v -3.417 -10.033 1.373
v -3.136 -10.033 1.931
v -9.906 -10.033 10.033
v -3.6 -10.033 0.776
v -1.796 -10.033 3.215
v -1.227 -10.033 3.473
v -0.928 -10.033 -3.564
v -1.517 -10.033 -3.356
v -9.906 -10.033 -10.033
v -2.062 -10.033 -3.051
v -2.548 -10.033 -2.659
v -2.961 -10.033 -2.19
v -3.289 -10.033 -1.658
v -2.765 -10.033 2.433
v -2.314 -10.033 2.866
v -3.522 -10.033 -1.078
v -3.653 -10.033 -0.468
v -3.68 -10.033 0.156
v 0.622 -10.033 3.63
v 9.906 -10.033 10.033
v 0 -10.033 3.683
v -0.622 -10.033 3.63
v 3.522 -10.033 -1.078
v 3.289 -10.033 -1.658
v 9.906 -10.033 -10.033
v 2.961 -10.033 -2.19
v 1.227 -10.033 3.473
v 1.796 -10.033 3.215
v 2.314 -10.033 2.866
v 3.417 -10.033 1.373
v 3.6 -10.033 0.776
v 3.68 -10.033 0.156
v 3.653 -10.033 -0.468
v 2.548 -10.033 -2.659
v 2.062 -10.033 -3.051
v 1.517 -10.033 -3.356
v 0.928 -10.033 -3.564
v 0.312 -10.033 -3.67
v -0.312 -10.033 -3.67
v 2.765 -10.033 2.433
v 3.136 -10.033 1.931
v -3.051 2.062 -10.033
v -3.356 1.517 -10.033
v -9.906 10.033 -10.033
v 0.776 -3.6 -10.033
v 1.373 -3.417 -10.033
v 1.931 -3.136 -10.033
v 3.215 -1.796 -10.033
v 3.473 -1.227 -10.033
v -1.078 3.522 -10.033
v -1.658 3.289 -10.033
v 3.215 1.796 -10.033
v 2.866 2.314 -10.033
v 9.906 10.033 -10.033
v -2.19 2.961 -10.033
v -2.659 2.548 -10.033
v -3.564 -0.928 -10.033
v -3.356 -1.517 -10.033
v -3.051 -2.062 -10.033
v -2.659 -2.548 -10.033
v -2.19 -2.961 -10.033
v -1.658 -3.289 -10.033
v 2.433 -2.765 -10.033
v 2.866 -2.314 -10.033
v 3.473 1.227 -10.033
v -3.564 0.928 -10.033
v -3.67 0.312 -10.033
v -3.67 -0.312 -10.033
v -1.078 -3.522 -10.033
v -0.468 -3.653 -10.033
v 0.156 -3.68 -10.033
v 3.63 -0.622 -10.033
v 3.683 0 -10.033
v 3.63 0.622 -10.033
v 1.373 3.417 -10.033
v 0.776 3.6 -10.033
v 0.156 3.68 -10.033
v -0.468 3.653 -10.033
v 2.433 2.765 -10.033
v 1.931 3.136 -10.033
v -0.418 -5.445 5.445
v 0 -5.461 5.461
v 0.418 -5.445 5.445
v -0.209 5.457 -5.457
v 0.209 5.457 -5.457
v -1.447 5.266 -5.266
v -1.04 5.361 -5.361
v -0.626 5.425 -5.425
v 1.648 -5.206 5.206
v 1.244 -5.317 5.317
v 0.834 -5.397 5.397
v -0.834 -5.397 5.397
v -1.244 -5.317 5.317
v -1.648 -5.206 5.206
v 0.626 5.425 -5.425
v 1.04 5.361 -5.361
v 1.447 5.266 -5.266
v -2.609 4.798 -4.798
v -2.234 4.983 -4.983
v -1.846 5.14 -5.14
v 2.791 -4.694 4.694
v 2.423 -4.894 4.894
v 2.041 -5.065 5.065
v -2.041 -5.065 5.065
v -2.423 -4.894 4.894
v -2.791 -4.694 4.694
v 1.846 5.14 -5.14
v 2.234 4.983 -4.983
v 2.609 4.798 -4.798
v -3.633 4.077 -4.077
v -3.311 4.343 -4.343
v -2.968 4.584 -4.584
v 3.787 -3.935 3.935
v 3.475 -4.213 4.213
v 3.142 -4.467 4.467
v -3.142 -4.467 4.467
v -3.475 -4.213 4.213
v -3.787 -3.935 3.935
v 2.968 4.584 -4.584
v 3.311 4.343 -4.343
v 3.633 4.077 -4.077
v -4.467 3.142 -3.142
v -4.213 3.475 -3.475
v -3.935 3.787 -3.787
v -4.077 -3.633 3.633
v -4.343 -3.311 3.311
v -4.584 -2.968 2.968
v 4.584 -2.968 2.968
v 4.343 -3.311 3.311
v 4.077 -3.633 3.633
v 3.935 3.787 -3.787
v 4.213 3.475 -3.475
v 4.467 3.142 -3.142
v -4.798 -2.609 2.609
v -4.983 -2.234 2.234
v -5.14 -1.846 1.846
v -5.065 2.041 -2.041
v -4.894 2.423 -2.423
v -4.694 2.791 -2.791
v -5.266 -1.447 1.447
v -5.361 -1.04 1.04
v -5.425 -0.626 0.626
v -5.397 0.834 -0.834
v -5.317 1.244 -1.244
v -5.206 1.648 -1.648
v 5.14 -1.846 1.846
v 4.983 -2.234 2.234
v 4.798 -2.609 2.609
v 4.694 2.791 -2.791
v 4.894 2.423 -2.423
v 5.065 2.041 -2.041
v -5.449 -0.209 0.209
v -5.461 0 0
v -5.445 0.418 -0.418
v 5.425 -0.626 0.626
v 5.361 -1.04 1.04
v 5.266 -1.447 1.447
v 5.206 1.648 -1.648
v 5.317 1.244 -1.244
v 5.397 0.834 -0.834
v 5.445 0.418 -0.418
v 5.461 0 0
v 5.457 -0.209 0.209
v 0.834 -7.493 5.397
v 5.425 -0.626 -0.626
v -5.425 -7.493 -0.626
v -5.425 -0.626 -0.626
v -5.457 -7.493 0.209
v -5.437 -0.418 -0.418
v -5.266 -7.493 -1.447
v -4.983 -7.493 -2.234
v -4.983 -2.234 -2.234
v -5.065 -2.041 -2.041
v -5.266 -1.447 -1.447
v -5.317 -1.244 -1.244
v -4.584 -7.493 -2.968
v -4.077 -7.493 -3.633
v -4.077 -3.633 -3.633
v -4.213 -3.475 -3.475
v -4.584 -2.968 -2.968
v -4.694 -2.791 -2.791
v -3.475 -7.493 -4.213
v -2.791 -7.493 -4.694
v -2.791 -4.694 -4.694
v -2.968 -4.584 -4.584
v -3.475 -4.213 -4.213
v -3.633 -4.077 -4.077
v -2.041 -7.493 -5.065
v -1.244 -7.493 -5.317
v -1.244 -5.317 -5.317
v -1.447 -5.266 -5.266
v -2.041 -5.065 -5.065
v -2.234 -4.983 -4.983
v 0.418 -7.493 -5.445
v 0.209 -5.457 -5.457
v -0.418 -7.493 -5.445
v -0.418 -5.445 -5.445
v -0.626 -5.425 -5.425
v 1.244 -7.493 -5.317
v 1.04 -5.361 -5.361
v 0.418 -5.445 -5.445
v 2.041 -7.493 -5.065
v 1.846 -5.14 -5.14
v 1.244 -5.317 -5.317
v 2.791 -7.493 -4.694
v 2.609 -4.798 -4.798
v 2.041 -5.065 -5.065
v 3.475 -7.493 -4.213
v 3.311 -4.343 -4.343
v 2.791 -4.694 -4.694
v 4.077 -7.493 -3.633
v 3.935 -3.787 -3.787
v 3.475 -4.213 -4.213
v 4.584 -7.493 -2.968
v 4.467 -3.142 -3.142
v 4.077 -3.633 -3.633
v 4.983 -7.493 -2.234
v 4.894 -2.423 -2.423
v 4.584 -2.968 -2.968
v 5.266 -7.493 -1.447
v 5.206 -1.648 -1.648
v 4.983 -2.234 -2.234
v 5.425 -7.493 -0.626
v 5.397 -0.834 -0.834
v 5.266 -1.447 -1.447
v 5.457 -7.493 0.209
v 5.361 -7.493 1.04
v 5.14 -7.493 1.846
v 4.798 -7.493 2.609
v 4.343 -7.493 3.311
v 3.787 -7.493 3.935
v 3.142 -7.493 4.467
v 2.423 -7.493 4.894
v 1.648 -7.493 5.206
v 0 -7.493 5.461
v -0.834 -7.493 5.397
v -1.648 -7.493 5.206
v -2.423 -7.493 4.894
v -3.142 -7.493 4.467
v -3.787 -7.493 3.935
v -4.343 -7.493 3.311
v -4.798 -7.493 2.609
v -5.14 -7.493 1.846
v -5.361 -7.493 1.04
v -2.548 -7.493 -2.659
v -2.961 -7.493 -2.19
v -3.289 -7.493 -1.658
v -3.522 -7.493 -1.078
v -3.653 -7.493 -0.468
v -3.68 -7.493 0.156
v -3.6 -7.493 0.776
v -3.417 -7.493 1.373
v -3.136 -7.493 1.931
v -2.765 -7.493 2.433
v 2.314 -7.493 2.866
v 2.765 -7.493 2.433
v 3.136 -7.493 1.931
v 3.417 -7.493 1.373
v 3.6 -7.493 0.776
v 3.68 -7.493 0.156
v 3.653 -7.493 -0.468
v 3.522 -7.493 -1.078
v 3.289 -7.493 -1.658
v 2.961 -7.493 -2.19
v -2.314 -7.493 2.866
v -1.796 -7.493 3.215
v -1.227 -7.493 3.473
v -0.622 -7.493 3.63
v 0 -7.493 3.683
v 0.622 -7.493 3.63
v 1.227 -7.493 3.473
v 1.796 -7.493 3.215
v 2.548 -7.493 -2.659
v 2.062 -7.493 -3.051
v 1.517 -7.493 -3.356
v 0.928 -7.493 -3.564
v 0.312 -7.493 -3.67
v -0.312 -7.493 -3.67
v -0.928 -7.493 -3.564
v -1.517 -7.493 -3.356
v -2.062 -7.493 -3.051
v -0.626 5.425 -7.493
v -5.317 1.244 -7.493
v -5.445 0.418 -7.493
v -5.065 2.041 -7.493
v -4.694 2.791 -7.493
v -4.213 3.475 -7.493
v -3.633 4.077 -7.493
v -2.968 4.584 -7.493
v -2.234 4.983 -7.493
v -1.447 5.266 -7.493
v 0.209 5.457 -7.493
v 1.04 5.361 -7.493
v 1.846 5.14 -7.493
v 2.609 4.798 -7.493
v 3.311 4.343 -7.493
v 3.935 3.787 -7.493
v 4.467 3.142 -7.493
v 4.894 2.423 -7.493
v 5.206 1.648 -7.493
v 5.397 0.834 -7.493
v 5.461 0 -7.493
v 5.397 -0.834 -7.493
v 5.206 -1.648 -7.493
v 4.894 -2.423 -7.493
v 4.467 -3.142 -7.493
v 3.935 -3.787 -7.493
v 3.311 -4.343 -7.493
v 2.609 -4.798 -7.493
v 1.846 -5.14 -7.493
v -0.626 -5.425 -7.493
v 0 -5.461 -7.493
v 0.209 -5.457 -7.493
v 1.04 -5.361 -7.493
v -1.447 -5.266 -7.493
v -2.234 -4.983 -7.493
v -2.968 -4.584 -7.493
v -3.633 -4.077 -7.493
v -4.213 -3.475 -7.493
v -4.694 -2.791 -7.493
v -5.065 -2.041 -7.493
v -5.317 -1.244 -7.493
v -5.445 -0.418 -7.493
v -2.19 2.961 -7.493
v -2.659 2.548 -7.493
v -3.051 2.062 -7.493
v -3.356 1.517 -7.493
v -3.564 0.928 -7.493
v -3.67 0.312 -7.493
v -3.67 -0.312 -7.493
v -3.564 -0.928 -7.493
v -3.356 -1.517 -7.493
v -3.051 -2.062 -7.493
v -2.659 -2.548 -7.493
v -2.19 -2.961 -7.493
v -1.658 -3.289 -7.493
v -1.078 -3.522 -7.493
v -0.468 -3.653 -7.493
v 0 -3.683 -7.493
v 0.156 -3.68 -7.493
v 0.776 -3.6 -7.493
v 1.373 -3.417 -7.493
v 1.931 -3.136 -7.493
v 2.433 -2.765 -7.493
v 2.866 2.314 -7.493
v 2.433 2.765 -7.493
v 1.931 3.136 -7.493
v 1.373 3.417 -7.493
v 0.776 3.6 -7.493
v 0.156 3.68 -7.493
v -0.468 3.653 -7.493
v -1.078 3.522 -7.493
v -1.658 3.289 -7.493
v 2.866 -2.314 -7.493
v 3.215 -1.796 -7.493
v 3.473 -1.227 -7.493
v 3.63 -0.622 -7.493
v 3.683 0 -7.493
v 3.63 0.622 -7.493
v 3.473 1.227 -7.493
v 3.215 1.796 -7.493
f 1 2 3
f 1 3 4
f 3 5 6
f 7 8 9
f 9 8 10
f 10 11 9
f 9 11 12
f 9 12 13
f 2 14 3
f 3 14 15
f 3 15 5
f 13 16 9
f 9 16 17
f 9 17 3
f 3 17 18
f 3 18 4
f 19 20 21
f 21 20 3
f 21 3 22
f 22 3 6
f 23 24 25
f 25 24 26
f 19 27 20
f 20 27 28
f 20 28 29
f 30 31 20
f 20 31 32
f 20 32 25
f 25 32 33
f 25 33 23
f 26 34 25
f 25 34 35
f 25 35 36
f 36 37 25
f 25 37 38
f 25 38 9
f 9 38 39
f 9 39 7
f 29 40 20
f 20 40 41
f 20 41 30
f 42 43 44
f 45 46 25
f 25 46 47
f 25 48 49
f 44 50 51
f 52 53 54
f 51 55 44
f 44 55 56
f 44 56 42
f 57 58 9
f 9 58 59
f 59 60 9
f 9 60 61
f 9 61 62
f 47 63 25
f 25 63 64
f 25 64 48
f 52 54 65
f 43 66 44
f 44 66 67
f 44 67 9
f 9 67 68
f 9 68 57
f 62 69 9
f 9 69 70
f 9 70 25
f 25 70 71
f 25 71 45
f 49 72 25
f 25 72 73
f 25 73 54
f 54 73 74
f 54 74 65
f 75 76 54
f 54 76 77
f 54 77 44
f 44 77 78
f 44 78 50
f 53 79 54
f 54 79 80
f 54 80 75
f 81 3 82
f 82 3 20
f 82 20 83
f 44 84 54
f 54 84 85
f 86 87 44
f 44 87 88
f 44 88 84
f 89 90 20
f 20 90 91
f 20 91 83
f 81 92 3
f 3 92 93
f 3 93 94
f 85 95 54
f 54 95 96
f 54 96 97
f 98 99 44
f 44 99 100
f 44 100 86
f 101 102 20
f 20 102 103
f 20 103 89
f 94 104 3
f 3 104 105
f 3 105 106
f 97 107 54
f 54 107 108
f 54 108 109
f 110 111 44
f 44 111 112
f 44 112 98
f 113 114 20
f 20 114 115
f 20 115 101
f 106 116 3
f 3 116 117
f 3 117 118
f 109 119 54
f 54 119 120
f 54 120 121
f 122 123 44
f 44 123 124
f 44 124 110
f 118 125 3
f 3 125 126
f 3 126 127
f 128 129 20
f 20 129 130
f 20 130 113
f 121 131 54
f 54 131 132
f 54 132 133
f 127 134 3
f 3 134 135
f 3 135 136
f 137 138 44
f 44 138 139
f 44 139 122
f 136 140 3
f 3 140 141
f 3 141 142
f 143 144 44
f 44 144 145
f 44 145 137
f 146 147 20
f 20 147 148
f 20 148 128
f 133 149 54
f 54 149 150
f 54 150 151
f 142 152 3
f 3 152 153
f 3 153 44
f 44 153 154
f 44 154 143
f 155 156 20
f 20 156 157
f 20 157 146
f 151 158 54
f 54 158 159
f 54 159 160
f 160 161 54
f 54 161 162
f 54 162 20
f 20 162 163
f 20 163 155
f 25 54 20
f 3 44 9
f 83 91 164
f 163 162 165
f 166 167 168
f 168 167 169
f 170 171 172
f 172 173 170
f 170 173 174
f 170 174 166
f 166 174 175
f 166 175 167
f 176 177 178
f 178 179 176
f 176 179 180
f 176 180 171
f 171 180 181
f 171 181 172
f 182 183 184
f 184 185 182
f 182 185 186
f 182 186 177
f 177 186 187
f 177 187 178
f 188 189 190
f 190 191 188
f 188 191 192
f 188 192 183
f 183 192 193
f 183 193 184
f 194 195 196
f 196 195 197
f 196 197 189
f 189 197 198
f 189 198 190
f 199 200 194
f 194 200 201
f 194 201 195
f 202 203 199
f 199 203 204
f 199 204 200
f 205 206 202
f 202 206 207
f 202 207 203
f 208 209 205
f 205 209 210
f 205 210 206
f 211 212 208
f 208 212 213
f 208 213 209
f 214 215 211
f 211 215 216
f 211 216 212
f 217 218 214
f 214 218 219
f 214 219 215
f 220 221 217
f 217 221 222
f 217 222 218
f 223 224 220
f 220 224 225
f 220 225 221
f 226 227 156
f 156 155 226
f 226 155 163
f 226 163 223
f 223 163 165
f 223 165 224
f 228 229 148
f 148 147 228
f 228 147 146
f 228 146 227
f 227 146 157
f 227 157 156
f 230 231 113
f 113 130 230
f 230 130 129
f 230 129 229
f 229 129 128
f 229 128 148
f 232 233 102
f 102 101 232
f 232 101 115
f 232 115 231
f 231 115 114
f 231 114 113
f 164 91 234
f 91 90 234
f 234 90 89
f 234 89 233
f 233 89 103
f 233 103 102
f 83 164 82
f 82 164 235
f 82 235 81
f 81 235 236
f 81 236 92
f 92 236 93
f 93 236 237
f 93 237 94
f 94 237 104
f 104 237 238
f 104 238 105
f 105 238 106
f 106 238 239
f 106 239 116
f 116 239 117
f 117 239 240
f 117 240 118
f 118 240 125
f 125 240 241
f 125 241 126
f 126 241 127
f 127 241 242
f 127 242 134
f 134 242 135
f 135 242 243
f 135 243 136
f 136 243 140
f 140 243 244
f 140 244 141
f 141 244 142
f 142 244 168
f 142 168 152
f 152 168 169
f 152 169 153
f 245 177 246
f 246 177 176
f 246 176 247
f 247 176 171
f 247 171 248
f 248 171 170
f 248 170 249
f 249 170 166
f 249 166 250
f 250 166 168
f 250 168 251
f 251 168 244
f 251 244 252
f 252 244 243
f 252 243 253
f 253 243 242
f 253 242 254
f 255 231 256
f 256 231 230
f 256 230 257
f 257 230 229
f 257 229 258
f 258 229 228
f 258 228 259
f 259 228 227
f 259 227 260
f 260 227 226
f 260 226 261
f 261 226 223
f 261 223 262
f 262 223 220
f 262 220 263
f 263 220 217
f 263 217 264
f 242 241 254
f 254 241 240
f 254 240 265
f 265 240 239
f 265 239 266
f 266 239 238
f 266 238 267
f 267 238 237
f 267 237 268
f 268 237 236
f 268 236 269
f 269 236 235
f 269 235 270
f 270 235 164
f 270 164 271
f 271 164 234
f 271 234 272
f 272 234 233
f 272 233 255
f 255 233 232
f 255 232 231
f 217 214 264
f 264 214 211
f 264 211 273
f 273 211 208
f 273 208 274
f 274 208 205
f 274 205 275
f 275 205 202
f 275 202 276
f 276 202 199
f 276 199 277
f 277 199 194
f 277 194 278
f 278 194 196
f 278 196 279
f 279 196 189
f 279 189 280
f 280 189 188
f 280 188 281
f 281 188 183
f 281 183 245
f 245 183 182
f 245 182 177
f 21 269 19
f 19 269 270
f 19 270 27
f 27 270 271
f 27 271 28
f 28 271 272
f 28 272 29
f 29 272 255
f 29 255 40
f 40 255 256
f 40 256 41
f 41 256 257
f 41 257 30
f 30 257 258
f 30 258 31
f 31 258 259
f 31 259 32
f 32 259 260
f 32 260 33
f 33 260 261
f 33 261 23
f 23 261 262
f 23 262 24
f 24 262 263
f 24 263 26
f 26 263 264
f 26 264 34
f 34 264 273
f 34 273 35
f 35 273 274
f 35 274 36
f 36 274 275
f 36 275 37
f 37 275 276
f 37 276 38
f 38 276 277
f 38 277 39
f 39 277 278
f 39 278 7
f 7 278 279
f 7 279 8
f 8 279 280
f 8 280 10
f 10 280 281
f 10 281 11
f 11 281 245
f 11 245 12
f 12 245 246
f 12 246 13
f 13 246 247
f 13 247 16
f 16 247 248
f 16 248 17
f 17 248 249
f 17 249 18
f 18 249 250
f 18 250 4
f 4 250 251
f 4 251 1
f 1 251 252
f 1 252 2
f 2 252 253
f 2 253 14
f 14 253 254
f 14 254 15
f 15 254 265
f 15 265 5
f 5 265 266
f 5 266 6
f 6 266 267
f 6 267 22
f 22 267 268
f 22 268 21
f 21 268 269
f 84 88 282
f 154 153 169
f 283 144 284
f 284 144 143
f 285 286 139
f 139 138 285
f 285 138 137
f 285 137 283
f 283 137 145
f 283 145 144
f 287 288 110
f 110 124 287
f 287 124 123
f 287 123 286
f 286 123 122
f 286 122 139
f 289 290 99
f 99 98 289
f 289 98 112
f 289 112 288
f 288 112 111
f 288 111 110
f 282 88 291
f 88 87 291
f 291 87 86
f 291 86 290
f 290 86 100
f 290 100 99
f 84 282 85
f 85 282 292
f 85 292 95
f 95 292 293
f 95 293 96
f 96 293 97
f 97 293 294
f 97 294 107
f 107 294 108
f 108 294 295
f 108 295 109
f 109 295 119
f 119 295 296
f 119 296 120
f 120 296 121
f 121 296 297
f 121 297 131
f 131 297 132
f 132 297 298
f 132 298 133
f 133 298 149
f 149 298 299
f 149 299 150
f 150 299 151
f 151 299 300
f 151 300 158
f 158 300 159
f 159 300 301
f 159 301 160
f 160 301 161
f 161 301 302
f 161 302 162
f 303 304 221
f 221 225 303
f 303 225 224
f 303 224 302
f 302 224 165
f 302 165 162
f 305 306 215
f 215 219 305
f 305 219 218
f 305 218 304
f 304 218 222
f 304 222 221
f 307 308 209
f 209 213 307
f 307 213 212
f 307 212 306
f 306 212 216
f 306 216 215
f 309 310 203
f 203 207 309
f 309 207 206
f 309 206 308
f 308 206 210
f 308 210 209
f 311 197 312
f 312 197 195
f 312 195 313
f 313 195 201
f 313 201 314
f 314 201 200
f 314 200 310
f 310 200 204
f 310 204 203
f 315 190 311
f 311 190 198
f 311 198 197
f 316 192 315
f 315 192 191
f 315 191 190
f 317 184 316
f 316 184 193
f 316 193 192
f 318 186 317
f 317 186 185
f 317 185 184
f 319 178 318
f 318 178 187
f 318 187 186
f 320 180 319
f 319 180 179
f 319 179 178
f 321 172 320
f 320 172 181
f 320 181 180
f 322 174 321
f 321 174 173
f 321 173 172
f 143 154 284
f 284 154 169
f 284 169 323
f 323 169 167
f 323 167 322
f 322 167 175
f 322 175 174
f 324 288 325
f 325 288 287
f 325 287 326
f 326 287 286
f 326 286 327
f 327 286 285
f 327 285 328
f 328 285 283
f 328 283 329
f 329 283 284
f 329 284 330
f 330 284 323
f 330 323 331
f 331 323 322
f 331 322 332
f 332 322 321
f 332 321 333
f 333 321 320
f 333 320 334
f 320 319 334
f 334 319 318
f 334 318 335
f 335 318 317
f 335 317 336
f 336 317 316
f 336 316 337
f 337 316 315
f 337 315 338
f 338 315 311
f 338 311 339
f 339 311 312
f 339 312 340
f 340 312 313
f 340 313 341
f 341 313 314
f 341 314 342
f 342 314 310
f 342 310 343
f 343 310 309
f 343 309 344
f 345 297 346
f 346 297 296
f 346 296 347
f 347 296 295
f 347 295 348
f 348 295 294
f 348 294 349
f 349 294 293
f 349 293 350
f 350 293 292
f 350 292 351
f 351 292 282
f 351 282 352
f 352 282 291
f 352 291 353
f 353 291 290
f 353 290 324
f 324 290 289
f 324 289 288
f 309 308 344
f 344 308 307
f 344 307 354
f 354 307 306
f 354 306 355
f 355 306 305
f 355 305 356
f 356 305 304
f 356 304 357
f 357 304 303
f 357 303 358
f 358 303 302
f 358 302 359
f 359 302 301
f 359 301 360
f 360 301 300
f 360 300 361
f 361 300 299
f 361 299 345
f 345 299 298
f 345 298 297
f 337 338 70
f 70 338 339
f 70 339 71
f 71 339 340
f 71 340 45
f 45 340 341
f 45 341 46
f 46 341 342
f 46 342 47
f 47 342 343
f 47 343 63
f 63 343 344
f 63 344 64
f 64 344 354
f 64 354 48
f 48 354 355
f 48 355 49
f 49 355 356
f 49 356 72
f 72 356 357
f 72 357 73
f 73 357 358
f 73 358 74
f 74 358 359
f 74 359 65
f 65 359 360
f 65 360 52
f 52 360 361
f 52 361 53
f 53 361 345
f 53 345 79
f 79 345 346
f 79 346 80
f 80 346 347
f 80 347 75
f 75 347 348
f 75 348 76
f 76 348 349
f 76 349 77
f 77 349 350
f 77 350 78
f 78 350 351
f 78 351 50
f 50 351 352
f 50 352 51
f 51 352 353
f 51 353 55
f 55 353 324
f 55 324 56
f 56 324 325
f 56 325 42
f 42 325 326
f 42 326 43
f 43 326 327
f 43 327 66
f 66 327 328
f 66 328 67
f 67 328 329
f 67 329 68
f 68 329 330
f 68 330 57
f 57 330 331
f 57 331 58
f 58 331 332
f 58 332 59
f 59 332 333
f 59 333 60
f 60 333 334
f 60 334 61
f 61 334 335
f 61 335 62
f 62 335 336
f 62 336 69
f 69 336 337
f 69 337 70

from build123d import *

# Parameters (mm, degrees)
BOSS_EXTRUDE1_DEPTH     = 9.906
CUT_EXTRUDE1_DEPTH      = 18.304652958
CUT_EXTRUDE1_DEPTH_BACK = 7.493
SKETCH2_R               = 5.461
SKETCH2_R_2             = 3.683
SKETCH2_3_R             = 3.683
CUT_EXTRUDE2_DEPTH      = 18.304652958
SKETCH3_R               = 5.461
SKETCH3_R_2             = 3.683
CUT_EXTRUDE3_DEPTH      = 7.493
SKETCH3_4_R             = 3.683
CUT_EXTRUDE4_DEPTH      = 18.304652958


with BuildPart() as part:
    # Sketch1 → Boss-Extrude1 (new, symmetric)
    with BuildSketch(Plane(origin=(0, 0, 0), x_dir=(0, 0, -1), z_dir=(1, 0, 0))):
        Polygon((-10.033, -10.033), (10.033, 10.033), (10.033, -10.033), align=None)
    extrude(amount=BOSS_EXTRUDE1_DEPTH, both=True)

    # Sketch2 → Cut-Extrude1 (cut, two sides: drawn at the far end of the back side and taken through both)
    # profile 1 of 2: a face of its own
    with BuildSketch(Plane(origin=(0, 0, 0), x_dir=(1, 0, 0), z_dir=(0, 1, 0)).offset(-CUT_EXTRUDE1_DEPTH_BACK)):
        with Locations(Location((0, 0, 0), (0, 0, 270))):
            Circle(SKETCH2_R)
        Circle(SKETCH2_R_2, mode=Mode.SUBTRACT)
    # profile 2 of 2: a face of its own
    with BuildSketch(Plane(origin=(0, 0, 0), x_dir=(1, 0, 0), z_dir=(0, 1, 0)).offset(-CUT_EXTRUDE1_DEPTH_BACK)):
        Circle(SKETCH2_R_2)
    extrude(amount=CUT_EXTRUDE1_DEPTH + CUT_EXTRUDE1_DEPTH_BACK, mode=Mode.SUBTRACT)

    # Sketch2<3> → Cut-Extrude2 (cut, through all)
    with BuildSketch(Plane(origin=(0, 0, 0), x_dir=(1, 0, 0), z_dir=(0, 1, 0))):
        with Locations(Location((0, 0, 0), (0, 0, 270))):
            Circle(SKETCH2_3_R)
    extrude(amount=-CUT_EXTRUDE2_DEPTH, mode=Mode.SUBTRACT)

    # Sketch3 → Cut-Extrude3 (cut)
    # profile 1 of 2: a face of its own
    with BuildSketch(Plane.XY):
        Circle(SKETCH3_R)
        Circle(SKETCH3_R_2, mode=Mode.SUBTRACT)
    # profile 2 of 2: a face of its own
    with BuildSketch(Plane.XY):
        Circle(SKETCH3_R_2)
    extrude(amount=-CUT_EXTRUDE3_DEPTH, mode=Mode.SUBTRACT)

    # Sketch3<4> → Cut-Extrude4 (cut, through all)
    with BuildSketch(Plane.XY):
        Circle(SKETCH3_4_R)
    extrude(amount=-CUT_EXTRUDE4_DEPTH, mode=Mode.SUBTRACT)


solid = part.part
